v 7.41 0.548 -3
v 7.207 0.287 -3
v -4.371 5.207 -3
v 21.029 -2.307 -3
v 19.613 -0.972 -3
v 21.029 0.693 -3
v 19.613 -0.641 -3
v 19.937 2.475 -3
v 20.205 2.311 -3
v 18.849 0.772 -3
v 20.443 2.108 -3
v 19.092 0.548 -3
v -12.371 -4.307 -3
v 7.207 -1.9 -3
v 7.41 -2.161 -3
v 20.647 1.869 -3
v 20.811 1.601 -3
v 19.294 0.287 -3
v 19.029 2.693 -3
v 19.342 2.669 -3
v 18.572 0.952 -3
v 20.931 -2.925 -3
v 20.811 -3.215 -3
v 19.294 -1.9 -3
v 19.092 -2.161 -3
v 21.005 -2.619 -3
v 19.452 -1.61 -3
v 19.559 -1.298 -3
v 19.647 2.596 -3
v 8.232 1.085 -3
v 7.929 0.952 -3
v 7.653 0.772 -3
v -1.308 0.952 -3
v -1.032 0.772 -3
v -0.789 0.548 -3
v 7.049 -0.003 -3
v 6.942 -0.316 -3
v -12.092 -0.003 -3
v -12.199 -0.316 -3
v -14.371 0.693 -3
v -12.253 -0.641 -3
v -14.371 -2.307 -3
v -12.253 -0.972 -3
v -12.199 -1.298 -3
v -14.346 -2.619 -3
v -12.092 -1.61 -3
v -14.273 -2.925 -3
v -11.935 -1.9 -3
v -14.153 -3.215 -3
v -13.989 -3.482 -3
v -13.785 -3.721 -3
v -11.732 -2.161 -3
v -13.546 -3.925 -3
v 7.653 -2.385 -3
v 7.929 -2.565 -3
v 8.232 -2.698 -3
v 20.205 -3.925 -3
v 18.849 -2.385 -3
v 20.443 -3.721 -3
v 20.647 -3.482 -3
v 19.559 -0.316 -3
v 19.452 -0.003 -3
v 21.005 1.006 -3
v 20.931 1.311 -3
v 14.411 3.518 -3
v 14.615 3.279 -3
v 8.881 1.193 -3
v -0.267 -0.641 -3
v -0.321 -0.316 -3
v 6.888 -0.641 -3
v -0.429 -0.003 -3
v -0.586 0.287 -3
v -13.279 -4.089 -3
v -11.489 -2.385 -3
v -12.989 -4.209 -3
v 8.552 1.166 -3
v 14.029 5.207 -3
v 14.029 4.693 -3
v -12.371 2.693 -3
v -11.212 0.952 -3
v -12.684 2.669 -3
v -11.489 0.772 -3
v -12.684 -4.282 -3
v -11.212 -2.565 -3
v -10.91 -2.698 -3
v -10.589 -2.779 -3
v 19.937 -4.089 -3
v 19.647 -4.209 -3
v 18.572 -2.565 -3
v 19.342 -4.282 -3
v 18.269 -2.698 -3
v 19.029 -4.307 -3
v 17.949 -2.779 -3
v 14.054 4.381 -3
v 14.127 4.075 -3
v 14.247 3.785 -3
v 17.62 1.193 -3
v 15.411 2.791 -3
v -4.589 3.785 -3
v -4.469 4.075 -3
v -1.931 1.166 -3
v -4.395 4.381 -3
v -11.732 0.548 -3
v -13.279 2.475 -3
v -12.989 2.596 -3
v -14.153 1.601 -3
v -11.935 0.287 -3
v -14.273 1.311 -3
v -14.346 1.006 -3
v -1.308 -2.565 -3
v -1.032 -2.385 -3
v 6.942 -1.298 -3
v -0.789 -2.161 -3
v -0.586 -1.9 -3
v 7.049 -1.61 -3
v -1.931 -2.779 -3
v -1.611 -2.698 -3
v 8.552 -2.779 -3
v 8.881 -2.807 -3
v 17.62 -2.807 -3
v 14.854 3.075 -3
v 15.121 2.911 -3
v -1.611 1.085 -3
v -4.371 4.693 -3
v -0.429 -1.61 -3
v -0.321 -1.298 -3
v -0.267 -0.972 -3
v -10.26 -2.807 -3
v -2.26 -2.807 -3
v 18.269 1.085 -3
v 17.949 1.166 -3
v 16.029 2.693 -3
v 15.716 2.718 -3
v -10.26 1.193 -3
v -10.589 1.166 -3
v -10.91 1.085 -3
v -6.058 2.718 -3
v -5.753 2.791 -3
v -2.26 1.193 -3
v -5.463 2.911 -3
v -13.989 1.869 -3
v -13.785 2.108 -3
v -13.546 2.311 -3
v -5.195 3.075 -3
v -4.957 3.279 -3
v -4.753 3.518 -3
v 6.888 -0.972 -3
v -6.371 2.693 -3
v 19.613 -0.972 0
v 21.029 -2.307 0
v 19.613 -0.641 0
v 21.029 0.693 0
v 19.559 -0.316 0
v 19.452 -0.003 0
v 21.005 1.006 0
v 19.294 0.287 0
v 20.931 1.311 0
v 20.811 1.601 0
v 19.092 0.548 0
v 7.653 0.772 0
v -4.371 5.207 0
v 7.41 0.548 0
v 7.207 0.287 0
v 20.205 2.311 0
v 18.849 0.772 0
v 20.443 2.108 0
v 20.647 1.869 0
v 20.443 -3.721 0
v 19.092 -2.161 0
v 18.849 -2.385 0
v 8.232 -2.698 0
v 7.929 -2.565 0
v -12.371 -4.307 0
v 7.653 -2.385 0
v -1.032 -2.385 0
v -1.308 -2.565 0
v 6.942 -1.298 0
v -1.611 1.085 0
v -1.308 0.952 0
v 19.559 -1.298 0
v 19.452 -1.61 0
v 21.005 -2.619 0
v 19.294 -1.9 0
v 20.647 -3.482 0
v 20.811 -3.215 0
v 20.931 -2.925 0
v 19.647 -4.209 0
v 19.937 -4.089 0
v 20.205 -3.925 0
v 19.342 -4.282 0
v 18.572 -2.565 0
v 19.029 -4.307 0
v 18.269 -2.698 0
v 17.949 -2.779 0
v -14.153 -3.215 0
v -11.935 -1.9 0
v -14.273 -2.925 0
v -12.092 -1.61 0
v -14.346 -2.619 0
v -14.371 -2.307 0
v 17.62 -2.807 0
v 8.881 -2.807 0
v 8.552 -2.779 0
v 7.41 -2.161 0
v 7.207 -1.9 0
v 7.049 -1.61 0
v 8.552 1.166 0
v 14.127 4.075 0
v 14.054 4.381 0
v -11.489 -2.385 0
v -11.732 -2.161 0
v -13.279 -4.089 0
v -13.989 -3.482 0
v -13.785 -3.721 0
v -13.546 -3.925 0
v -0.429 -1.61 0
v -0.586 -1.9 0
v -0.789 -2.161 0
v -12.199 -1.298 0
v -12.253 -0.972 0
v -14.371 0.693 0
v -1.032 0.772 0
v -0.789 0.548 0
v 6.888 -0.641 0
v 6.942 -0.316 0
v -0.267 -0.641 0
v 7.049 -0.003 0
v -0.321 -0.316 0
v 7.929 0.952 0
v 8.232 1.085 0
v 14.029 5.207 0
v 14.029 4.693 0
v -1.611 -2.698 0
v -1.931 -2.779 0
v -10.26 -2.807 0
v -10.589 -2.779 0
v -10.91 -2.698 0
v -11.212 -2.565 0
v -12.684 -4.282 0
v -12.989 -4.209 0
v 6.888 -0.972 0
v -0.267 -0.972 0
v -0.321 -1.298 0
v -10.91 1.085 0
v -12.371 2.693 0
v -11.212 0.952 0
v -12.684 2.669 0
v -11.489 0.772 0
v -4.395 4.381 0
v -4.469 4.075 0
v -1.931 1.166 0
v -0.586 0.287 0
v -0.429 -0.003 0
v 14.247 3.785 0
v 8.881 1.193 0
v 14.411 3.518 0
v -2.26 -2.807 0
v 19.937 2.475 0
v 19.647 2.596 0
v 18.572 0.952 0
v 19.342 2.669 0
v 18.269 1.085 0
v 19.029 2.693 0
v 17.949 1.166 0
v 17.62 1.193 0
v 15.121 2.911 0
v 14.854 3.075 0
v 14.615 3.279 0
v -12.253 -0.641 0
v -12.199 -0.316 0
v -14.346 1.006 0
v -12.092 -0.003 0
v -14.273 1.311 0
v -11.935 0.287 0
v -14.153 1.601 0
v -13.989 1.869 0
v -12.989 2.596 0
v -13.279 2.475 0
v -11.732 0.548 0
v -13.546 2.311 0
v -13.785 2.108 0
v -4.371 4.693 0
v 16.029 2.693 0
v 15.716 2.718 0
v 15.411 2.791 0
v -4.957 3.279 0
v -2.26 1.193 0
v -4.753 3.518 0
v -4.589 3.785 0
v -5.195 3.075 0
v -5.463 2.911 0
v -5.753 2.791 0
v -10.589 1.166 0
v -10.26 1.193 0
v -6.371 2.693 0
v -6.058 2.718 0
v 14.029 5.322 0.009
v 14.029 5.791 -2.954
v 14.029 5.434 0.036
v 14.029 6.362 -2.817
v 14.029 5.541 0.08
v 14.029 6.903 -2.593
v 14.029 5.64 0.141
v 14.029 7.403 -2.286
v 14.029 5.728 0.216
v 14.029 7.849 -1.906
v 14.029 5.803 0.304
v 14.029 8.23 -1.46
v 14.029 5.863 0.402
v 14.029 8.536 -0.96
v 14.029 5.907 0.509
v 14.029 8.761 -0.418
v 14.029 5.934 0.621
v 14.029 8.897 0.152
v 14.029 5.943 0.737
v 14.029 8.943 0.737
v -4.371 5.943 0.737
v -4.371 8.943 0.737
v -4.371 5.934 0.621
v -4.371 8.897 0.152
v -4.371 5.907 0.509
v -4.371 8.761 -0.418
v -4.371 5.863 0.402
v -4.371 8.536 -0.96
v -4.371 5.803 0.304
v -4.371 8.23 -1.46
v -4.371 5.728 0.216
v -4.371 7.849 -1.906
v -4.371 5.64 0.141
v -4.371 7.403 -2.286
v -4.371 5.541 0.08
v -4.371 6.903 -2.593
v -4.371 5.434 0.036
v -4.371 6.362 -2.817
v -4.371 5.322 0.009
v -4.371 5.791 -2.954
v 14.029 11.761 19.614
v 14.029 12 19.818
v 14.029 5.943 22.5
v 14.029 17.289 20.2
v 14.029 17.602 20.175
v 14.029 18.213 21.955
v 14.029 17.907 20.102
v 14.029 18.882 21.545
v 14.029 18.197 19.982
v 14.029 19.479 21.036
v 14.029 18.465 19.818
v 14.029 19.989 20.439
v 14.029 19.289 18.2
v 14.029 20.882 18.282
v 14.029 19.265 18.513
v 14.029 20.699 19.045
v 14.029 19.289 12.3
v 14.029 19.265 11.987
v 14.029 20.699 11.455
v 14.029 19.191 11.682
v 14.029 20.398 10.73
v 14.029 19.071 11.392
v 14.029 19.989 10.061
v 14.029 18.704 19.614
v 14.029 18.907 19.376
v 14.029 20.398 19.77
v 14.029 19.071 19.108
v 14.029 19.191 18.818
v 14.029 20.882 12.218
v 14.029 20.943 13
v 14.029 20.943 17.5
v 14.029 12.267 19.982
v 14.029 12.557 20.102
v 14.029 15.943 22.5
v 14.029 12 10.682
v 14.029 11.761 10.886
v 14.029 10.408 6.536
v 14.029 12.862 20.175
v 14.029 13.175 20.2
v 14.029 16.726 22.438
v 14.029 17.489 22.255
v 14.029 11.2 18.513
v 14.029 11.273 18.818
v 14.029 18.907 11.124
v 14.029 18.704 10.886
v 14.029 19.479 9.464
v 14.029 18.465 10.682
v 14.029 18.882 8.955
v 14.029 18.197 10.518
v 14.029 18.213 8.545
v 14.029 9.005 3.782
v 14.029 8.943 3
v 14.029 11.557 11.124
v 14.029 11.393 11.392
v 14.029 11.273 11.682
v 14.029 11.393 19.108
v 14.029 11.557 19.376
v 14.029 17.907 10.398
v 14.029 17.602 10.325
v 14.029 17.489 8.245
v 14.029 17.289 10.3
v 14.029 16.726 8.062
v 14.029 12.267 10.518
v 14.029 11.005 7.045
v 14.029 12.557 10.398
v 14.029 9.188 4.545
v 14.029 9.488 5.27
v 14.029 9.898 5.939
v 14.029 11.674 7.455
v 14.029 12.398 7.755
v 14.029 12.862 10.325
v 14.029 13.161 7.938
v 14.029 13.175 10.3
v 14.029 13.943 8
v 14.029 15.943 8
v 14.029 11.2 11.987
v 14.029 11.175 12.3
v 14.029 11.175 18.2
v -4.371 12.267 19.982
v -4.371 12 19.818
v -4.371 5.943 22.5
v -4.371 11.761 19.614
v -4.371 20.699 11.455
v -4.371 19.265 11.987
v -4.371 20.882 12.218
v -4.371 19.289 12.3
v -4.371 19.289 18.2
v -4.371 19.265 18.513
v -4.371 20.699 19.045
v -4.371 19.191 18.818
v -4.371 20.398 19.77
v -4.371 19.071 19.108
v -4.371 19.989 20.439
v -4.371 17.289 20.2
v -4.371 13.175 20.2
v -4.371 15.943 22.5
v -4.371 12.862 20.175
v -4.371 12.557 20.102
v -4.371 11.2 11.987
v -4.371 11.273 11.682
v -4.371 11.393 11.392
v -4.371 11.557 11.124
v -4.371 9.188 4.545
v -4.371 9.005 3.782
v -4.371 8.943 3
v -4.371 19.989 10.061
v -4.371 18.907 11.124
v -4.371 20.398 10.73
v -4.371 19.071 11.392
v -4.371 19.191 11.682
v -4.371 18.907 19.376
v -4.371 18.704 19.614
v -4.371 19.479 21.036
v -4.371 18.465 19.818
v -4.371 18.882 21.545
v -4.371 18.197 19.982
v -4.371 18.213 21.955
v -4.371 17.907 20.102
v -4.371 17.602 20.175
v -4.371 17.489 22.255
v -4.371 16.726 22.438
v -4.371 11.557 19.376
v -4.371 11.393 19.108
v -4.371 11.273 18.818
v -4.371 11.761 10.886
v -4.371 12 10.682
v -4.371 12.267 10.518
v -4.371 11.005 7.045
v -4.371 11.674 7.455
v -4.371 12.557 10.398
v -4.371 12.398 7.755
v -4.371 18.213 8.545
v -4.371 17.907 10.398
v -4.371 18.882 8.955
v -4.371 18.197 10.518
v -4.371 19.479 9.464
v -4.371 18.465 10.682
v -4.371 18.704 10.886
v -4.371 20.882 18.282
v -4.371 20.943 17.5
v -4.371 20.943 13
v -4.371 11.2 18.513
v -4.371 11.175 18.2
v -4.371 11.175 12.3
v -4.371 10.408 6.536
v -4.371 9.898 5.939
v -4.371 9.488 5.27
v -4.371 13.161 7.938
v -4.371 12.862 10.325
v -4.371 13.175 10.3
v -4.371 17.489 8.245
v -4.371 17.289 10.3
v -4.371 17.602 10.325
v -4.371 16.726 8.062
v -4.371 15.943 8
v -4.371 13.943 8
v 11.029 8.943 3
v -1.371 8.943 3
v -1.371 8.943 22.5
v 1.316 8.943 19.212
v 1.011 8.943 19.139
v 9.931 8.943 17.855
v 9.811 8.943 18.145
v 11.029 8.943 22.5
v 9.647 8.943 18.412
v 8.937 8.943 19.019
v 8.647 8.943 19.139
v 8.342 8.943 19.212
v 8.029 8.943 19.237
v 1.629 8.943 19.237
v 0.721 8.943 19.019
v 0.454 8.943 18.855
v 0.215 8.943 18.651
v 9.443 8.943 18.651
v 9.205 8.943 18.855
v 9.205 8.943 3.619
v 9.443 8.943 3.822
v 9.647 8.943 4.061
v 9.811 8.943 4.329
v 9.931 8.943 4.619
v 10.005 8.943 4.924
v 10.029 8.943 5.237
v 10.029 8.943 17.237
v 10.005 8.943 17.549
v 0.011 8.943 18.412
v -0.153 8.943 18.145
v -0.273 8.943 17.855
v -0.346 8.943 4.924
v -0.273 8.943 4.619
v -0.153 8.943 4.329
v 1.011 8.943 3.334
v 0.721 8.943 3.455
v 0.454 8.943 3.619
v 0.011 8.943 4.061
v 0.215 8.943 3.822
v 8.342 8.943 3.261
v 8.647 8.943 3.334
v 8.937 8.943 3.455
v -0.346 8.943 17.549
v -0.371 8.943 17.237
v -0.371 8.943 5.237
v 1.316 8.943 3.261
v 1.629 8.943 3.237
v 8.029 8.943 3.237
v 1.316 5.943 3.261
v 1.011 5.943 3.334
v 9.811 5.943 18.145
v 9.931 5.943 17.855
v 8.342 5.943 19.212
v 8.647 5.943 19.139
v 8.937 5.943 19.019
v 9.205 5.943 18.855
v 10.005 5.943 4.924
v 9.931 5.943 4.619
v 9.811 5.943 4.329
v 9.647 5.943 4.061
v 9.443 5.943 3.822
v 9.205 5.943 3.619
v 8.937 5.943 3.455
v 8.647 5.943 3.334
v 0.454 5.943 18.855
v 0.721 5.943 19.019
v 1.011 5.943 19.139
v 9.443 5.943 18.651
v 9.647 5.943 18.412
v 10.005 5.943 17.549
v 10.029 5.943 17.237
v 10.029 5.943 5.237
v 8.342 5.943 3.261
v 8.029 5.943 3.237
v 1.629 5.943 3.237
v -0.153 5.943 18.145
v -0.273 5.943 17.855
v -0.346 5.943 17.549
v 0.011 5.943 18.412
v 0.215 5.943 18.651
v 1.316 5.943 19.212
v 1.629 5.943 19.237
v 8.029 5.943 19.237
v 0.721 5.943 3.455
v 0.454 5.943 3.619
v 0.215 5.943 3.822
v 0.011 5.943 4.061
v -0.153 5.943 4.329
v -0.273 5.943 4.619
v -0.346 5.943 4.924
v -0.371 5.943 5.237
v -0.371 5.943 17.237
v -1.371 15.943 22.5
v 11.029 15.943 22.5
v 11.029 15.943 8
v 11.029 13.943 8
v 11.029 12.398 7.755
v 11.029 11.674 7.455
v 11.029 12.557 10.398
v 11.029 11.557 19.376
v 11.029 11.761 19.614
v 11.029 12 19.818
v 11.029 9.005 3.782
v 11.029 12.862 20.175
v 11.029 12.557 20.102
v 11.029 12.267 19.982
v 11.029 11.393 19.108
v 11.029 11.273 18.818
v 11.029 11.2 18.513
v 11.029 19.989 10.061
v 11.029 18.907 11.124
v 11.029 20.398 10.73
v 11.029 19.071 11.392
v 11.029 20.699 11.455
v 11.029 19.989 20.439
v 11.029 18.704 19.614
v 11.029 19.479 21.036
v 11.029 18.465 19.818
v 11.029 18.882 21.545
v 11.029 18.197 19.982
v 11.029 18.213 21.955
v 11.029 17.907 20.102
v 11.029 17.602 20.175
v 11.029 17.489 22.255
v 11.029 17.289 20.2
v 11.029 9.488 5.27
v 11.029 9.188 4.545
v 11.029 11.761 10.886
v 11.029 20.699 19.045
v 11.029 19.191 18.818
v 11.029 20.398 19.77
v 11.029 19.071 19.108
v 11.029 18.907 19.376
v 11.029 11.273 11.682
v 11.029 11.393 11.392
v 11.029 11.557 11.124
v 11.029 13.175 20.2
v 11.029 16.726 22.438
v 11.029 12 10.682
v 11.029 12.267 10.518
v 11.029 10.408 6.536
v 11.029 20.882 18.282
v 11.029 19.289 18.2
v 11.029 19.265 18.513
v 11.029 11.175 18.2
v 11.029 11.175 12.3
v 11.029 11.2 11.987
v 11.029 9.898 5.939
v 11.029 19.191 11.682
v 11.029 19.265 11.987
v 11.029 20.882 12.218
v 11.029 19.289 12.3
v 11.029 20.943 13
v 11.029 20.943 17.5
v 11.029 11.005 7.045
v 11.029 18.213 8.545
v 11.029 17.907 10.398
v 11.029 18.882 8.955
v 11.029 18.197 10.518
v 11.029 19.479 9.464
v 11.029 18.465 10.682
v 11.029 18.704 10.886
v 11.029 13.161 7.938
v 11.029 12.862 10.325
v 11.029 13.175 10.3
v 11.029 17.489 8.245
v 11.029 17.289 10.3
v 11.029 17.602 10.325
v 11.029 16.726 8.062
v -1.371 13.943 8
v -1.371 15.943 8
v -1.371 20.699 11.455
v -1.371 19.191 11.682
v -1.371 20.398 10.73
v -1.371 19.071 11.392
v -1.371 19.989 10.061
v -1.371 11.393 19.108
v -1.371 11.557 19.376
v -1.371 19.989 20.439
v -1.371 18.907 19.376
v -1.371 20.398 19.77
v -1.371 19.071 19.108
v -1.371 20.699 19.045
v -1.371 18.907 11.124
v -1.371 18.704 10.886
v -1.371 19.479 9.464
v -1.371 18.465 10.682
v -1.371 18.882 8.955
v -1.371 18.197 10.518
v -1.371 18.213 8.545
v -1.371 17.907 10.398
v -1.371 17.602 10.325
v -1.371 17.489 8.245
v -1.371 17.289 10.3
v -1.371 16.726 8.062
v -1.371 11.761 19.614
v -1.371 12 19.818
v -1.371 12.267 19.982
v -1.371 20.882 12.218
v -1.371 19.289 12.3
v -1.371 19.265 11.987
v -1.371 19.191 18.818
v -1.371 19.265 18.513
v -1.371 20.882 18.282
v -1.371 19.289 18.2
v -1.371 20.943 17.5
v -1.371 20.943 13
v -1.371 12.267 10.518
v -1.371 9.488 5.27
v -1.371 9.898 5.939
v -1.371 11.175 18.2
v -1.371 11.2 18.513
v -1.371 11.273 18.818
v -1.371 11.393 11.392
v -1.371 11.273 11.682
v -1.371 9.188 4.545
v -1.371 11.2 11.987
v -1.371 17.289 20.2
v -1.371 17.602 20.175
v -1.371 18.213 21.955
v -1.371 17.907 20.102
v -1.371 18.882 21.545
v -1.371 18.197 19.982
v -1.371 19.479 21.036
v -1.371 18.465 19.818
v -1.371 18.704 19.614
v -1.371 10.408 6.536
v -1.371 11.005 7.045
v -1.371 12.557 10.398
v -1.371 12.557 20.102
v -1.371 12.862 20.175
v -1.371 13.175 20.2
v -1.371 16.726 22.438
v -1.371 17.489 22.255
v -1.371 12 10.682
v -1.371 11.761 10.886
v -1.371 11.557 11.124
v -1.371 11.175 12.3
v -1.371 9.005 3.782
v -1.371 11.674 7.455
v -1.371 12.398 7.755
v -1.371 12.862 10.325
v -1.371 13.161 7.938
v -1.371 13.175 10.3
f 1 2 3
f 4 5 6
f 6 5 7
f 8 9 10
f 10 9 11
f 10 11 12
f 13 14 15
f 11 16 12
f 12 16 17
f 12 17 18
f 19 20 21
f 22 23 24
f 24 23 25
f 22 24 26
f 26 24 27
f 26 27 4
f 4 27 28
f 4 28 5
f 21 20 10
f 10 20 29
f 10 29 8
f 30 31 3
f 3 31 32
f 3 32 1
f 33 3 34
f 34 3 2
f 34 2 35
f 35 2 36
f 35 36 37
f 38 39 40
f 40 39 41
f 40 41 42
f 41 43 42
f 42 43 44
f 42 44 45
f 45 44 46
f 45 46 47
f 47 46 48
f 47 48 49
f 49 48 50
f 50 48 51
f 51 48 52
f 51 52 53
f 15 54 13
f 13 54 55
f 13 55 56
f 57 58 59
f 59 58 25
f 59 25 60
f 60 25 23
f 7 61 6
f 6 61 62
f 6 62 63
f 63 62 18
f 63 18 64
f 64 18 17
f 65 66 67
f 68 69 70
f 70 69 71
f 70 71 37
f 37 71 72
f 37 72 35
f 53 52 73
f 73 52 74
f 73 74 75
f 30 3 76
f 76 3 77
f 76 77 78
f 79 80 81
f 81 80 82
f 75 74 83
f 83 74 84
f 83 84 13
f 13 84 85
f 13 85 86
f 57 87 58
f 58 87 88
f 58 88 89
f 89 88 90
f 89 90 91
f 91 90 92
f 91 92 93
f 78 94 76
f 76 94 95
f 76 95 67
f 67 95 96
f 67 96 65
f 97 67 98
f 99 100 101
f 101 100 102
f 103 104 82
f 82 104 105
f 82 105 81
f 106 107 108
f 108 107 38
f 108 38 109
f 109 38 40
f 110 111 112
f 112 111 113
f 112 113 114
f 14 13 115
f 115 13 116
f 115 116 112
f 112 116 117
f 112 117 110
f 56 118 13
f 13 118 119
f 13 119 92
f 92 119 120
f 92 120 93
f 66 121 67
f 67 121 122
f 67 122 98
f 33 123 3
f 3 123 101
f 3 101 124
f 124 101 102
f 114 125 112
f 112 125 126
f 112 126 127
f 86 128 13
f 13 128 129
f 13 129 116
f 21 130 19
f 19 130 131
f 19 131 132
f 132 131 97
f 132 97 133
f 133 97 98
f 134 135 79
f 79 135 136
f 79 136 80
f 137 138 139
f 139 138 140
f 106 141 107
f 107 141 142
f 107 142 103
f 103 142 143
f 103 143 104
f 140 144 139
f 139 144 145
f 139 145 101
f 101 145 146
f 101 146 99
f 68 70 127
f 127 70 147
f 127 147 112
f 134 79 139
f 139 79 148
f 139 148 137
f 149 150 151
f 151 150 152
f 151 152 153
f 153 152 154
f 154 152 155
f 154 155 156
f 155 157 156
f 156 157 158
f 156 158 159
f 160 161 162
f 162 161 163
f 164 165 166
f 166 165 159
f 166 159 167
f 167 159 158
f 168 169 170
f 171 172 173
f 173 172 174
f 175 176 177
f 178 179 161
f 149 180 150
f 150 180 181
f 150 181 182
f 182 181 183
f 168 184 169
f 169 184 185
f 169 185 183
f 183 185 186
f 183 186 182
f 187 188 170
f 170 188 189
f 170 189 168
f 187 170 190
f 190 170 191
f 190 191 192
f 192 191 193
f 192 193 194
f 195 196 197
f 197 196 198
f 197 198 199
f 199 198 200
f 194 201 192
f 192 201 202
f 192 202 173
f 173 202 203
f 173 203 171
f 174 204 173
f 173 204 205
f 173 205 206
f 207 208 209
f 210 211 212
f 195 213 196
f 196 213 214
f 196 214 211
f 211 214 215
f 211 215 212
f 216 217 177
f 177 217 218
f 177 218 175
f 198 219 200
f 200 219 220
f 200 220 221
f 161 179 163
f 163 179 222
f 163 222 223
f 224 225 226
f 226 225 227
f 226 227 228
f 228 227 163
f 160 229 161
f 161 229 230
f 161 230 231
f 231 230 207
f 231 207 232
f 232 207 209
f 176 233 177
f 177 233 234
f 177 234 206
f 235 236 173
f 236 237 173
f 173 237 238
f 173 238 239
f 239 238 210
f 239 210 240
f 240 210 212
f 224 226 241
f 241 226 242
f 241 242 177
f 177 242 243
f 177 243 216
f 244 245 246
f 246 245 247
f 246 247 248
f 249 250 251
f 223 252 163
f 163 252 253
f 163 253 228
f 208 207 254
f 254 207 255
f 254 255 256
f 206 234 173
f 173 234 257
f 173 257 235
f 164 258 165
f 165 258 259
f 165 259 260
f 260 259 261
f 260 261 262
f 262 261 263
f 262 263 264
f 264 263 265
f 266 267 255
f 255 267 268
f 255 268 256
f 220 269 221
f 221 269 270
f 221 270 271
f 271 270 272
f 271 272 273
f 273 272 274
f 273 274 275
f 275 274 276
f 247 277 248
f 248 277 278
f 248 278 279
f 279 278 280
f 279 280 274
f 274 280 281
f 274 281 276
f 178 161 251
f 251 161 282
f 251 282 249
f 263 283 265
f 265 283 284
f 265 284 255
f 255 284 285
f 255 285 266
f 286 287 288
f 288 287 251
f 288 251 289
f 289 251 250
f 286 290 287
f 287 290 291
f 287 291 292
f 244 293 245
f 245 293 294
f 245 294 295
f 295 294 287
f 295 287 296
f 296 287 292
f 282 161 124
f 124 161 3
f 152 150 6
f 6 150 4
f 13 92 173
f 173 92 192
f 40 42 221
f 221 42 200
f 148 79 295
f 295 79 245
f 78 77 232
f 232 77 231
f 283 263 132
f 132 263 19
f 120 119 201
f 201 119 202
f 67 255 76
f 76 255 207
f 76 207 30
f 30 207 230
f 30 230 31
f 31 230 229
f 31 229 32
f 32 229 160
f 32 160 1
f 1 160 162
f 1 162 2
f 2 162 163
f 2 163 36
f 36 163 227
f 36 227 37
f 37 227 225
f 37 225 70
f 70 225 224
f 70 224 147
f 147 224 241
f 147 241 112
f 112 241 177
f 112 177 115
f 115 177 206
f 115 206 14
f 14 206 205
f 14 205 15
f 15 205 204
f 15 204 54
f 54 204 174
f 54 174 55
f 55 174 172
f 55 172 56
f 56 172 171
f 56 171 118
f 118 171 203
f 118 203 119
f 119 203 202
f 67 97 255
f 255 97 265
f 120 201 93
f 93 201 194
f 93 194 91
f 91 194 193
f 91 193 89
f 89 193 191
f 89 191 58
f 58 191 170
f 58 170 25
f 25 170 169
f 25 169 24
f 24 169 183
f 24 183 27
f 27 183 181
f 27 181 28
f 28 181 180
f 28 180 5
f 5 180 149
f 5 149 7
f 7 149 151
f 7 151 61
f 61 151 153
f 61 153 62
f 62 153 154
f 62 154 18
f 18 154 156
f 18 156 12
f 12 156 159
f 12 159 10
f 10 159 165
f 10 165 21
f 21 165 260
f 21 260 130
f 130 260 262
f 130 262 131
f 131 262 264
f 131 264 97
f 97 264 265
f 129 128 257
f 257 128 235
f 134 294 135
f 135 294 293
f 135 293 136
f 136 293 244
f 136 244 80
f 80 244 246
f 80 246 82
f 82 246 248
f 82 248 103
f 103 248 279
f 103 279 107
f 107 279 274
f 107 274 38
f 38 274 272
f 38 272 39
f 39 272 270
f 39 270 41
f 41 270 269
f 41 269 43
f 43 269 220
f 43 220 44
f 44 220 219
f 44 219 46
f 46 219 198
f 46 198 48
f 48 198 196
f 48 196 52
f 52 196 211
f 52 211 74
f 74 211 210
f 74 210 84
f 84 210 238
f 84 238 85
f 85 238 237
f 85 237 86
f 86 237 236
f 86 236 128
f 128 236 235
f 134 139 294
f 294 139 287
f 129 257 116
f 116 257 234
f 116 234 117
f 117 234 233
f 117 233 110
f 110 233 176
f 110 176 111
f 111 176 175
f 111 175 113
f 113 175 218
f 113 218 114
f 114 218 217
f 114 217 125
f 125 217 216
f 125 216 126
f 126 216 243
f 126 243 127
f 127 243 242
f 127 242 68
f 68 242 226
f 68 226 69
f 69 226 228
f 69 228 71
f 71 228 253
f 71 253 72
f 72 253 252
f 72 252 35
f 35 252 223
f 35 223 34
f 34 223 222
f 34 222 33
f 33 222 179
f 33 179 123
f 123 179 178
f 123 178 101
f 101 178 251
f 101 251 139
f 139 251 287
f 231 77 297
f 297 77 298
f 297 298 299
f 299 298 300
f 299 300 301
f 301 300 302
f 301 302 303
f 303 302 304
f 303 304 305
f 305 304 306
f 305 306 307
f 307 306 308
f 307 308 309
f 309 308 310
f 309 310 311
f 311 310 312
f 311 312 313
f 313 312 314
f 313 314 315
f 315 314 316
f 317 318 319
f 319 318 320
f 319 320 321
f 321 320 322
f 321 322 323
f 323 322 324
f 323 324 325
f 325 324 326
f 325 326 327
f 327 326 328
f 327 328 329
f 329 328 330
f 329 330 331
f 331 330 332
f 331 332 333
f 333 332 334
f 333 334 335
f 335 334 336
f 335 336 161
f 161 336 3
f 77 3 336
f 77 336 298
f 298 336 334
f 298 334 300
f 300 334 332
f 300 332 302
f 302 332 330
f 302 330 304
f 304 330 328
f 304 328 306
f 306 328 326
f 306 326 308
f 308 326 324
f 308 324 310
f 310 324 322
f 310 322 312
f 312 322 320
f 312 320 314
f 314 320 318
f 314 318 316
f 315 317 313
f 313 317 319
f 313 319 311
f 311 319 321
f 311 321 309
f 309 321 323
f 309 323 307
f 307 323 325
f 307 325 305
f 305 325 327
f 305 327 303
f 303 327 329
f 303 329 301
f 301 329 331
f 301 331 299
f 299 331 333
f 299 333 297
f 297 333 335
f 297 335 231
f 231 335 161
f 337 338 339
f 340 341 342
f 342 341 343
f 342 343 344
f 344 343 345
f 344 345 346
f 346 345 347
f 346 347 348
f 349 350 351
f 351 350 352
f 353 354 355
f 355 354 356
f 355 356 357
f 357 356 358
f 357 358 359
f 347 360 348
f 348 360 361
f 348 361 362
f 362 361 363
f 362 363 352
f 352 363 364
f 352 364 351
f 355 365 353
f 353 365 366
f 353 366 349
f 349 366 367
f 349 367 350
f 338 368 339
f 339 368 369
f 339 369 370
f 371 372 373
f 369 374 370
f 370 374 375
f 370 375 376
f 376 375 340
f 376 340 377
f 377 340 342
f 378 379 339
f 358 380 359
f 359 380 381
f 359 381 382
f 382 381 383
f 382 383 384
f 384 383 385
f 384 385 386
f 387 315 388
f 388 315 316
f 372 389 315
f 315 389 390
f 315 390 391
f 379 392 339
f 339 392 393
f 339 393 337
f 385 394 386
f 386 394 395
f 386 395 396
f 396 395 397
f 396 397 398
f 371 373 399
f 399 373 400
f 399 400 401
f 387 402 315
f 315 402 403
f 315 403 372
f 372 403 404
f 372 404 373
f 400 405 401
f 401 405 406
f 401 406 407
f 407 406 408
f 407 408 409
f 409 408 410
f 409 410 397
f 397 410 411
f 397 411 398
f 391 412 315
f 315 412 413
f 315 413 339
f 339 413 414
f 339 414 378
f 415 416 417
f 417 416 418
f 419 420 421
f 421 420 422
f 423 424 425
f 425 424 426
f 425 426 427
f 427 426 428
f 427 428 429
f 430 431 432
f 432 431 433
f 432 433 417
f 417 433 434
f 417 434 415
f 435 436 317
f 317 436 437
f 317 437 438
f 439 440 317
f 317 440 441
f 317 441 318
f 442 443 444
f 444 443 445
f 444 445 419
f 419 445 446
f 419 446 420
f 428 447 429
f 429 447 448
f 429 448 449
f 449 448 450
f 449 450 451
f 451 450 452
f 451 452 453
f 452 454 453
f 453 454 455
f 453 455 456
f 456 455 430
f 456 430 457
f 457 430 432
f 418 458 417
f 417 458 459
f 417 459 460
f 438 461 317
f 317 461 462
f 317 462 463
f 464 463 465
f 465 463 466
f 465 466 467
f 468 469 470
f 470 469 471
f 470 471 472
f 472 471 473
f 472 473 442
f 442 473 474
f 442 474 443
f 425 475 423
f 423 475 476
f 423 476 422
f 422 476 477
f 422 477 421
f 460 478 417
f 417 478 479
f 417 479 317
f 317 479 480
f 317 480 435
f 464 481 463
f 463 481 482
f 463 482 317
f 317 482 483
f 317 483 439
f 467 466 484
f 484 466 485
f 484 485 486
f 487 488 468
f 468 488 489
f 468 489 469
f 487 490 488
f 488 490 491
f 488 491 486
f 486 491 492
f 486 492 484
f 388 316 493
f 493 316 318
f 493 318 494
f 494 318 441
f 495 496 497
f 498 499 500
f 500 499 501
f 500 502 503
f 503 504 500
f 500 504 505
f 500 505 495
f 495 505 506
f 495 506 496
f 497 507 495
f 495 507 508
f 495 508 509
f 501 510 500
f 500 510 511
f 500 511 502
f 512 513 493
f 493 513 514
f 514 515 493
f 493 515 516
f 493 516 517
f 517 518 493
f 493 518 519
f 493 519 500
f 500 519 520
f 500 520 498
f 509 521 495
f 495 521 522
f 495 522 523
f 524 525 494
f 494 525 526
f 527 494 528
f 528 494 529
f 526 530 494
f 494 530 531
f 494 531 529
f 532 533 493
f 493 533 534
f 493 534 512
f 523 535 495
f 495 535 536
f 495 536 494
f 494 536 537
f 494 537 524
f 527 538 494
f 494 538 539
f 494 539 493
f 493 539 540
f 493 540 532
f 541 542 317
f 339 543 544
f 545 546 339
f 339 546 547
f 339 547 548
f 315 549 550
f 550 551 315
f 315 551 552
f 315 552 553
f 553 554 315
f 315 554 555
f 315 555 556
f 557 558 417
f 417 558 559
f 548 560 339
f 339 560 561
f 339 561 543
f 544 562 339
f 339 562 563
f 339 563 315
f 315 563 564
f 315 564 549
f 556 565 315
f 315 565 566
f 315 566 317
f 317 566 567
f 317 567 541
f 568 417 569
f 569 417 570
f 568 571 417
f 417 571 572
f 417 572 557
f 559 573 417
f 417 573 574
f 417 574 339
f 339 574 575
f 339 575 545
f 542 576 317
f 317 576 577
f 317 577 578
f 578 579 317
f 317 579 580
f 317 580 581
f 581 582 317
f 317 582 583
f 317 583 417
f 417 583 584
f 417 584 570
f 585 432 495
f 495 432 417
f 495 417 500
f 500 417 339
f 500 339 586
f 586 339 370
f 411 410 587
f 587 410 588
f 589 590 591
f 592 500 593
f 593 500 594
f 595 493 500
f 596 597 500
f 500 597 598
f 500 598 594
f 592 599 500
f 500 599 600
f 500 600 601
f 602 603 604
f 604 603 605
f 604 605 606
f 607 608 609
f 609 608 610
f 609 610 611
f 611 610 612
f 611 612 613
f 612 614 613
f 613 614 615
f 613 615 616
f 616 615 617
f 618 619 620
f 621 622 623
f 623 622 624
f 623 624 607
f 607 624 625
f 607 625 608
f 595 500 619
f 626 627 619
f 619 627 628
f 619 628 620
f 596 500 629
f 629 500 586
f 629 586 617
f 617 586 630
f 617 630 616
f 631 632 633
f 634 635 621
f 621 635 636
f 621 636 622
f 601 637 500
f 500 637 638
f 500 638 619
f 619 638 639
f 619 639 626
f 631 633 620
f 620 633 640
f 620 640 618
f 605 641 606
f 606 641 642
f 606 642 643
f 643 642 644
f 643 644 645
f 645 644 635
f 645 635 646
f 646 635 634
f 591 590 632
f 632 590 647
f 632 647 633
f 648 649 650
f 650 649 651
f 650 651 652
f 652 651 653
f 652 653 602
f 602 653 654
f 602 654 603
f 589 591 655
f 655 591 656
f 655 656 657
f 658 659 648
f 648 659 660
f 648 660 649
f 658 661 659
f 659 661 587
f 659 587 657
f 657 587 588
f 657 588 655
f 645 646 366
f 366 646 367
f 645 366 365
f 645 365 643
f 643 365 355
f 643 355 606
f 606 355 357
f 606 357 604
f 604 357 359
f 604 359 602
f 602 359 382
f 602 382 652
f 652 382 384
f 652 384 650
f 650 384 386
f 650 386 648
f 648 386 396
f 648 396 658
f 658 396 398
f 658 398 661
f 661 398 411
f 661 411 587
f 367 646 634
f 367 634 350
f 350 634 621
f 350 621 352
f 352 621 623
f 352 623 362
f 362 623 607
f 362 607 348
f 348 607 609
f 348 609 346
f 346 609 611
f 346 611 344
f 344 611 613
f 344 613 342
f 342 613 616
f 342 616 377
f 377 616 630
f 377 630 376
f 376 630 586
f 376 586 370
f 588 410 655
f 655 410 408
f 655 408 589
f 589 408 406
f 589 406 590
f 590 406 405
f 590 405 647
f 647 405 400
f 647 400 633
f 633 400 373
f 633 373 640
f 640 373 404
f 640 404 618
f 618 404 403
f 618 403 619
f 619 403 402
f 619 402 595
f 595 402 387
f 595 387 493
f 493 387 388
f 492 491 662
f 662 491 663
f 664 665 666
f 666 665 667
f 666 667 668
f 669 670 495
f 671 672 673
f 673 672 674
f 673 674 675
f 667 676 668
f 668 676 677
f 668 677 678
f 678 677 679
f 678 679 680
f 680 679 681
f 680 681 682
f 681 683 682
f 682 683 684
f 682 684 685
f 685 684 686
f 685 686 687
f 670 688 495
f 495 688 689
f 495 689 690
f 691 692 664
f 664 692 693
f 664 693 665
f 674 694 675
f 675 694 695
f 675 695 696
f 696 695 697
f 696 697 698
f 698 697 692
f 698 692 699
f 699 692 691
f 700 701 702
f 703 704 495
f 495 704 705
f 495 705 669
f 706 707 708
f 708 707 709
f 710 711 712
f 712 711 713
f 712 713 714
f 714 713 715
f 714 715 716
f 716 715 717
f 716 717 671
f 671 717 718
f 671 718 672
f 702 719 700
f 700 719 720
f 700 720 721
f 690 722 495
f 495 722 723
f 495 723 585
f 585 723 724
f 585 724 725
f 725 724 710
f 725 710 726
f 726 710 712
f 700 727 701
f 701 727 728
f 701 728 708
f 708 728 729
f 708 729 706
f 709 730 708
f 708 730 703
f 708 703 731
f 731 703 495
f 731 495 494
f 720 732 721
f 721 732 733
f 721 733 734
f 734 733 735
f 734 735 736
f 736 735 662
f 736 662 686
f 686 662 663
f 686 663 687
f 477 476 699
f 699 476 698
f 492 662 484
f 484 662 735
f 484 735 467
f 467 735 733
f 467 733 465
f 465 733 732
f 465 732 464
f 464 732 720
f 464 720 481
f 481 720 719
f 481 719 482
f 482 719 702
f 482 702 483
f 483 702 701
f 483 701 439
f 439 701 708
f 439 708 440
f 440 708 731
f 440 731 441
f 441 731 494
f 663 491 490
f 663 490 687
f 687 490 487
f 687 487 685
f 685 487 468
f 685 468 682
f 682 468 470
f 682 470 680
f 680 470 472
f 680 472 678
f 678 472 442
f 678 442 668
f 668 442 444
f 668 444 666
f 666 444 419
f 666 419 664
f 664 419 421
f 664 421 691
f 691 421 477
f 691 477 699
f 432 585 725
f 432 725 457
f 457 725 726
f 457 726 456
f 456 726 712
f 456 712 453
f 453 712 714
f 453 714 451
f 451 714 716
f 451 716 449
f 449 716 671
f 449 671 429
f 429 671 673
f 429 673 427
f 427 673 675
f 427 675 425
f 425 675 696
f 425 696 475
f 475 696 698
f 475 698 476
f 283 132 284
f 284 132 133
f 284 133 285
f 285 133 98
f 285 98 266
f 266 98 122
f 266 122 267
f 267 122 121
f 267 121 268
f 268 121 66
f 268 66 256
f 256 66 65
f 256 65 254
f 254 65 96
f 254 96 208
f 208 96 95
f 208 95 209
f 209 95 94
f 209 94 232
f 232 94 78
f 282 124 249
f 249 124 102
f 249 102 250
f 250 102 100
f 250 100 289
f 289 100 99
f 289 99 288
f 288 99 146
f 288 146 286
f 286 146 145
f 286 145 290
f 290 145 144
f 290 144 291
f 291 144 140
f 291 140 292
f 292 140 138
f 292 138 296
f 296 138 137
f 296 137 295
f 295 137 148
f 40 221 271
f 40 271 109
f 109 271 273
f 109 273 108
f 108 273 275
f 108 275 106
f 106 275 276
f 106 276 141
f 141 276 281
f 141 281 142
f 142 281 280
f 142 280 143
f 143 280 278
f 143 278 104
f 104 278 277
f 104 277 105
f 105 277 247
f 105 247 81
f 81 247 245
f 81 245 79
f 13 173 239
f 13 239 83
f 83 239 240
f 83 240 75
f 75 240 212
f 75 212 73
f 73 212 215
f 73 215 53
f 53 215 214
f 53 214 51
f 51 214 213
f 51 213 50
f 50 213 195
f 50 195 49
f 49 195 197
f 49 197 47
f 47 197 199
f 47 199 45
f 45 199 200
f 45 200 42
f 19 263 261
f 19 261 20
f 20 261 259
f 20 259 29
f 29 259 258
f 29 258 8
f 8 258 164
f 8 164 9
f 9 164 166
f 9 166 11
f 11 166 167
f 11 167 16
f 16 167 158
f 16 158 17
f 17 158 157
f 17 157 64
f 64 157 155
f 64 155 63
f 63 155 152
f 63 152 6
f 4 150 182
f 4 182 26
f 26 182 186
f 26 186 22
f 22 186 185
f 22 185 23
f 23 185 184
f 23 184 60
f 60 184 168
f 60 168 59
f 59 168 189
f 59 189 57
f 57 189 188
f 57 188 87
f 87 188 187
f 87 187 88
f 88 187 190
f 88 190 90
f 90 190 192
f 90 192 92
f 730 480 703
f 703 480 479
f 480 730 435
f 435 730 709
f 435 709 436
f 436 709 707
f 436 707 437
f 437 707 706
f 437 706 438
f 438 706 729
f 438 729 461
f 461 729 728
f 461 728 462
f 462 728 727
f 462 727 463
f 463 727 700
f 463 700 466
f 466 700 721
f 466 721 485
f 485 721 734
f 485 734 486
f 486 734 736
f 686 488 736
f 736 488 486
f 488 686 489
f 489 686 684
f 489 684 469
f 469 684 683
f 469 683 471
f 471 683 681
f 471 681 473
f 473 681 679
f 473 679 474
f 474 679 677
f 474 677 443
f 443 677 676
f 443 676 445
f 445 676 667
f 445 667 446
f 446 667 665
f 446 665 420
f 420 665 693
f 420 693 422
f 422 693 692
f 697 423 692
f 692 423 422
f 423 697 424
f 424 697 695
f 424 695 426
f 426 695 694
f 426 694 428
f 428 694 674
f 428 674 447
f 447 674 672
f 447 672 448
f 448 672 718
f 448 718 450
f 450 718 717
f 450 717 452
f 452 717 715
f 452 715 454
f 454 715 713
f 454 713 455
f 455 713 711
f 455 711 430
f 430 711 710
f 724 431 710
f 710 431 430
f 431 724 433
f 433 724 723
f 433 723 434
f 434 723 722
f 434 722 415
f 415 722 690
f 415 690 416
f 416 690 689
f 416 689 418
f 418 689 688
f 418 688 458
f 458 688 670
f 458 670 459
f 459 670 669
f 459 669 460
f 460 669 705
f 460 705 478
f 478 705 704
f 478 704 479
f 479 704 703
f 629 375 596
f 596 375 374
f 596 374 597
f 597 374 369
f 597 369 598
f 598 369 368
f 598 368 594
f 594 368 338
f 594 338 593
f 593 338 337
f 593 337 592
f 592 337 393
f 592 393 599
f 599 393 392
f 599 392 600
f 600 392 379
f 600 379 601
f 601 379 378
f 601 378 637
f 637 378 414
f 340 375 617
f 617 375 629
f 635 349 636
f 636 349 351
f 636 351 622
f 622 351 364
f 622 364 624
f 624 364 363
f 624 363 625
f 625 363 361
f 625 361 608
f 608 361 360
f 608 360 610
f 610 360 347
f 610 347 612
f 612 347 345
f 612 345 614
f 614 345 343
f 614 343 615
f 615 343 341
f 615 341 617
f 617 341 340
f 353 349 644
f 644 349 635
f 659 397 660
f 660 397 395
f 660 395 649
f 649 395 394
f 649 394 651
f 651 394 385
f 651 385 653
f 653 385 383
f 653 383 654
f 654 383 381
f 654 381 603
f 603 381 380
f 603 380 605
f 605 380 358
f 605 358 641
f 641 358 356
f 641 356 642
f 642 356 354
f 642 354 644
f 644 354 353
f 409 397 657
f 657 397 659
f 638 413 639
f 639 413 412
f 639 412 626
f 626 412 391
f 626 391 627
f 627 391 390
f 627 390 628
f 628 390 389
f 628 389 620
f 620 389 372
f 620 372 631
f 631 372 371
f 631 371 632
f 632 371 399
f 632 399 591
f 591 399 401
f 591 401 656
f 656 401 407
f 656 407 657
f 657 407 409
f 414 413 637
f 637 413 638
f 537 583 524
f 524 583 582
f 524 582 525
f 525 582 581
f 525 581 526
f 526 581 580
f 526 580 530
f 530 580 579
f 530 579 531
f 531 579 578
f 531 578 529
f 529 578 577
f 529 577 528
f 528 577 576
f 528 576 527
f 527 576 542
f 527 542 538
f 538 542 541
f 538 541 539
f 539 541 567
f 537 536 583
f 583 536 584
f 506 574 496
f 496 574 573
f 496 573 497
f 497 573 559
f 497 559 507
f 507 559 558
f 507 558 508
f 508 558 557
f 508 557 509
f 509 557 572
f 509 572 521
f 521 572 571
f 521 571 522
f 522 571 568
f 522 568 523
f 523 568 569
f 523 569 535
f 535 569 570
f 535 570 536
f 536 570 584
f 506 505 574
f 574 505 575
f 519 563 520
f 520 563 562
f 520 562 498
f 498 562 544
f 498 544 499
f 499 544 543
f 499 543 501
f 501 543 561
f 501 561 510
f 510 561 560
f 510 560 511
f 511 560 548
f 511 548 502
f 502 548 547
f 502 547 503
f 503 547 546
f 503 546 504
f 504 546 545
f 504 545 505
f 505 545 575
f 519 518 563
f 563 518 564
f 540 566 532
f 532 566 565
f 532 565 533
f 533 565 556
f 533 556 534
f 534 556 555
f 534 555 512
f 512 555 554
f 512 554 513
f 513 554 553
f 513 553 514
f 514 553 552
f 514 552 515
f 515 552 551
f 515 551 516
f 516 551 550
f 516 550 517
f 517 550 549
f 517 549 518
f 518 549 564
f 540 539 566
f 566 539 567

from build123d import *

# Parameters (mm, degrees)
FLANGE_BASE1_DEPTH             = 3
CORTE_EXTRUS_O1_DEPTH          = 3
ARESTA_FLANGE4_STRIP_W         = 13.4732
ARESTA_FLANGE4_STRIP_H         = 3
ARESTA_FLANGE4_STRIP_CUT_DEPTH = 18.4
ARESTA_FLANGE4_DEPTH           = 18.4
ESBO_O47_W                     = 14.5
ESBO_O47_H                     = 15
RESSALTO_EXTRUS_O1_DEPTH       = 3
FILETE1_R                      = 5
ESBO_O48_W                     = 14.5
ESBO_O48_H                     = 15
RESSALTO_EXTRUS_O2_DEPTH       = 3
FILETE2_R                      = 5
FILETE3_R                      = 2
CORTE_EXTRUS_O5_DEPTH          = 42.850190918
CORTE_EXTRUS_O6_DEPTH          = 3


# Sheet-metal steps are written as plain solids
with BuildPart() as part:
    # Esboço1 → Flange-base1 (new body)
    with BuildSketch(Plane.XY):
        Polygon((-14.370772566, 2.693459119), (-4.370772566, 2.693459119), (-4.370772566, 5.943459119), (14.029227434, 5.943459119), (14.029227434, 2.693459119), (21.029227434, 2.693459119), (21.029227434, -4.306540881), (-14.370772566, -4.306540881), align=None)
    extrude(amount=-FLANGE_BASE1_DEPTH)

    # Esboço8 → Corte-extrusão1 (cut)
    with BuildSketch(Plane.XY):
        with BuildLine():
            Line((-10.260200759, 1.193459119), (-2.260200759, 1.193459119))
            ThreePointArc((-2.260200759, 1.193459119), (-0.260200759, -0.806540881), (-2.260200759, -2.806540881))
            Line((-2.260200759, -2.806540881), (-10.260200759, -2.806540881))
            ThreePointArc((-10.260200759, -2.806540881), (-12.260200759, -0.806540881), (-10.260200759, 1.193459119))
        make_face()
        with BuildLine():
            Line((8.88097681, 1.193459119), (17.620096532, 1.193459119))
            ThreePointArc((17.620096532, 1.193459119), (19.620096532, -0.806540881), (17.620096532, -2.806540881))
            Line((17.620096532, -2.806540881), (8.88097681, -2.806540881))
            ThreePointArc((8.88097681, -2.806540881), (6.88097681, -0.806540881), (8.88097681, 1.193459119))
        make_face()
    extrude(amount=-CORTE_EXTRUS_O1_DEPTH, mode=Mode.SUBTRACT)

    # Aresta-Flange4 strip (across the edge) → Aresta-Flange4 strip cut (cut)
    with BuildSketch(Plane(origin=(14.029227434, 5.943459119, 0), x_dir=(0, -1, 0), z_dir=(-1, 0, 0))):
        with Locations((-6, -1.5)):
            Rectangle(ARESTA_FLANGE4_STRIP_W, ARESTA_FLANGE4_STRIP_H)
    extrude(amount=ARESTA_FLANGE4_STRIP_CUT_DEPTH, mode=Mode.SUBTRACT)

    # Aresta-Flange4 section (across the edge) → Aresta-Flange4 (add)
    with BuildSketch(Plane(origin=(14.029227434, 5.943459119, 0), x_dir=(0, -1, 0), z_dir=(-1, 0, 0))):
        with BuildLine():
            Line((-3, 0.7366), (-3, 22.5))
            Line((-3, 22.5), (0, 22.5))
            Line((0, 22.5), (0, 0.7366))
            ThreePointArc((0, 0.7366), (0.215745145, 0.215745145), (0.7366, 0))
            Line((0.7366, 0), (0.7366, -3))
            ThreePointArc((0.7366, -3), (-1.905575199, -1.905575199), (-3, 0.7366))
        make_face()
    extrude(amount=ARESTA_FLANGE4_DEPTH)

    # Esboço47 → Ressalto-extrusão1 (add)
    with BuildSketch(Plane(origin=(14.029227434, 0, 0), x_dir=(0, 0, -1), z_dir=(1, 0, 0))):
        with Locations((-15.25, 13.443459119)):
            Rectangle(ESBO_O47_W, ESBO_O47_H)
    extrude(amount=-RESSALTO_EXTRUS_O1_DEPTH)

    # Filete1
    filete1_edges = [part.edges().sort_by_distance(p)[0] for p in [
        (12.529227434, 20.943459119, 22.5),
        (12.529227434, 8.943459119, 8),
        (12.529227434, 20.943459119, 8),
    ]]
    fillet(filete1_edges, radius=FILETE1_R)

    # Esboço48 → Ressalto-extrusão2 (add)
    with BuildSketch(Plane.ZY.offset(4.370772566)):
        with Locations((15.25, 13.443459119)):
            Rectangle(ESBO_O48_W, ESBO_O48_H)
    extrude(amount=-RESSALTO_EXTRUS_O2_DEPTH)

    # Filete2
    filete2_edges = [part.edges().sort_by_distance(p)[0] for p in [
        (-2.870772566, 20.943459119, 22.5),
        (-2.870772566, 8.943459119, 8),
        (-2.870772566, 20.943459119, 8),
    ]]
    fillet(filete2_edges, radius=FILETE2_R)

    # Filete3
    filete3_edges = [part.edges().sort_by_distance(p)[0] for p in [
        (21.029227434, -4.306540881, -1.5),
        (-14.370772566, -4.306540881, -1.5),
        (-14.370772566, 2.693459119, -1.5),
        (-4.370772566, 2.693459119, -1.5),
        (14.029227434, 2.693459119, -1.5),
        (21.029227434, 2.693459119, -1.5),
    ]]
    fillet(filete3_edges, radius=FILETE3_R)

    # Esboço49 → Corte-extrusão5 (cut, through all)
    with BuildSketch(Plane(origin=(14.029227434, 0, 0), x_dir=(0, 0, -1), z_dir=(1, 0, 0))):
        with BuildLine():
            Line((-18.2, 11.175198381), (-12.3, 11.175198381))
            ThreePointArc((-12.3, 11.175198381), (-10.885786438, 11.760984819), (-10.3, 13.175198381))
            Line((-10.3, 13.175198381), (-10.3, 17.289297618))
            ThreePointArc((-10.3, 17.289297618), (-10.885786438, 18.70351118), (-12.3, 19.289297618))
            Line((-12.3, 19.289297618), (-18.2, 19.289297618))
            ThreePointArc((-18.2, 19.289297618), (-19.614213562, 18.70351118), (-20.2, 17.289297618))
            Line((-20.2, 17.289297618), (-20.2, 13.175198381))
            ThreePointArc((-20.2, 13.175198381), (-19.614213562, 11.760984819), (-18.2, 11.175198381))
        make_face()
    extrude(amount=-CORTE_EXTRUS_O5_DEPTH, mode=Mode.SUBTRACT)

    # Esboço50 → Corte-extrusão6 (cut)
    with BuildSketch(Plane.XZ.offset(-5.943459119)):
        with BuildLine():
            Line((1.629227434, 19.2366), (8.029227434, 19.2366))
            ThreePointArc((8.029227434, 19.2366), (9.443440996, 18.650813562), (10.029227434, 17.2366))
            Line((10.029227434, 17.2366), (10.029227434, 5.2366))
            ThreePointArc((10.029227434, 5.2366), (9.443440996, 3.822386438), (8.029227434, 3.2366))
            Line((8.029227434, 3.2366), (1.629227434, 3.2366))
            ThreePointArc((1.629227434, 3.2366), (0.215013871, 3.822386438), (-0.370772566, 5.2366))
            Line((-0.370772566, 5.2366), (-0.370772566, 17.2366))
            ThreePointArc((-0.370772566, 17.2366), (0.215013871, 18.650813562), (1.629227434, 19.2366))
        make_face()
    extrude(amount=-CORTE_EXTRUS_O6_DEPTH, mode=Mode.SUBTRACT)


solid = part.part
